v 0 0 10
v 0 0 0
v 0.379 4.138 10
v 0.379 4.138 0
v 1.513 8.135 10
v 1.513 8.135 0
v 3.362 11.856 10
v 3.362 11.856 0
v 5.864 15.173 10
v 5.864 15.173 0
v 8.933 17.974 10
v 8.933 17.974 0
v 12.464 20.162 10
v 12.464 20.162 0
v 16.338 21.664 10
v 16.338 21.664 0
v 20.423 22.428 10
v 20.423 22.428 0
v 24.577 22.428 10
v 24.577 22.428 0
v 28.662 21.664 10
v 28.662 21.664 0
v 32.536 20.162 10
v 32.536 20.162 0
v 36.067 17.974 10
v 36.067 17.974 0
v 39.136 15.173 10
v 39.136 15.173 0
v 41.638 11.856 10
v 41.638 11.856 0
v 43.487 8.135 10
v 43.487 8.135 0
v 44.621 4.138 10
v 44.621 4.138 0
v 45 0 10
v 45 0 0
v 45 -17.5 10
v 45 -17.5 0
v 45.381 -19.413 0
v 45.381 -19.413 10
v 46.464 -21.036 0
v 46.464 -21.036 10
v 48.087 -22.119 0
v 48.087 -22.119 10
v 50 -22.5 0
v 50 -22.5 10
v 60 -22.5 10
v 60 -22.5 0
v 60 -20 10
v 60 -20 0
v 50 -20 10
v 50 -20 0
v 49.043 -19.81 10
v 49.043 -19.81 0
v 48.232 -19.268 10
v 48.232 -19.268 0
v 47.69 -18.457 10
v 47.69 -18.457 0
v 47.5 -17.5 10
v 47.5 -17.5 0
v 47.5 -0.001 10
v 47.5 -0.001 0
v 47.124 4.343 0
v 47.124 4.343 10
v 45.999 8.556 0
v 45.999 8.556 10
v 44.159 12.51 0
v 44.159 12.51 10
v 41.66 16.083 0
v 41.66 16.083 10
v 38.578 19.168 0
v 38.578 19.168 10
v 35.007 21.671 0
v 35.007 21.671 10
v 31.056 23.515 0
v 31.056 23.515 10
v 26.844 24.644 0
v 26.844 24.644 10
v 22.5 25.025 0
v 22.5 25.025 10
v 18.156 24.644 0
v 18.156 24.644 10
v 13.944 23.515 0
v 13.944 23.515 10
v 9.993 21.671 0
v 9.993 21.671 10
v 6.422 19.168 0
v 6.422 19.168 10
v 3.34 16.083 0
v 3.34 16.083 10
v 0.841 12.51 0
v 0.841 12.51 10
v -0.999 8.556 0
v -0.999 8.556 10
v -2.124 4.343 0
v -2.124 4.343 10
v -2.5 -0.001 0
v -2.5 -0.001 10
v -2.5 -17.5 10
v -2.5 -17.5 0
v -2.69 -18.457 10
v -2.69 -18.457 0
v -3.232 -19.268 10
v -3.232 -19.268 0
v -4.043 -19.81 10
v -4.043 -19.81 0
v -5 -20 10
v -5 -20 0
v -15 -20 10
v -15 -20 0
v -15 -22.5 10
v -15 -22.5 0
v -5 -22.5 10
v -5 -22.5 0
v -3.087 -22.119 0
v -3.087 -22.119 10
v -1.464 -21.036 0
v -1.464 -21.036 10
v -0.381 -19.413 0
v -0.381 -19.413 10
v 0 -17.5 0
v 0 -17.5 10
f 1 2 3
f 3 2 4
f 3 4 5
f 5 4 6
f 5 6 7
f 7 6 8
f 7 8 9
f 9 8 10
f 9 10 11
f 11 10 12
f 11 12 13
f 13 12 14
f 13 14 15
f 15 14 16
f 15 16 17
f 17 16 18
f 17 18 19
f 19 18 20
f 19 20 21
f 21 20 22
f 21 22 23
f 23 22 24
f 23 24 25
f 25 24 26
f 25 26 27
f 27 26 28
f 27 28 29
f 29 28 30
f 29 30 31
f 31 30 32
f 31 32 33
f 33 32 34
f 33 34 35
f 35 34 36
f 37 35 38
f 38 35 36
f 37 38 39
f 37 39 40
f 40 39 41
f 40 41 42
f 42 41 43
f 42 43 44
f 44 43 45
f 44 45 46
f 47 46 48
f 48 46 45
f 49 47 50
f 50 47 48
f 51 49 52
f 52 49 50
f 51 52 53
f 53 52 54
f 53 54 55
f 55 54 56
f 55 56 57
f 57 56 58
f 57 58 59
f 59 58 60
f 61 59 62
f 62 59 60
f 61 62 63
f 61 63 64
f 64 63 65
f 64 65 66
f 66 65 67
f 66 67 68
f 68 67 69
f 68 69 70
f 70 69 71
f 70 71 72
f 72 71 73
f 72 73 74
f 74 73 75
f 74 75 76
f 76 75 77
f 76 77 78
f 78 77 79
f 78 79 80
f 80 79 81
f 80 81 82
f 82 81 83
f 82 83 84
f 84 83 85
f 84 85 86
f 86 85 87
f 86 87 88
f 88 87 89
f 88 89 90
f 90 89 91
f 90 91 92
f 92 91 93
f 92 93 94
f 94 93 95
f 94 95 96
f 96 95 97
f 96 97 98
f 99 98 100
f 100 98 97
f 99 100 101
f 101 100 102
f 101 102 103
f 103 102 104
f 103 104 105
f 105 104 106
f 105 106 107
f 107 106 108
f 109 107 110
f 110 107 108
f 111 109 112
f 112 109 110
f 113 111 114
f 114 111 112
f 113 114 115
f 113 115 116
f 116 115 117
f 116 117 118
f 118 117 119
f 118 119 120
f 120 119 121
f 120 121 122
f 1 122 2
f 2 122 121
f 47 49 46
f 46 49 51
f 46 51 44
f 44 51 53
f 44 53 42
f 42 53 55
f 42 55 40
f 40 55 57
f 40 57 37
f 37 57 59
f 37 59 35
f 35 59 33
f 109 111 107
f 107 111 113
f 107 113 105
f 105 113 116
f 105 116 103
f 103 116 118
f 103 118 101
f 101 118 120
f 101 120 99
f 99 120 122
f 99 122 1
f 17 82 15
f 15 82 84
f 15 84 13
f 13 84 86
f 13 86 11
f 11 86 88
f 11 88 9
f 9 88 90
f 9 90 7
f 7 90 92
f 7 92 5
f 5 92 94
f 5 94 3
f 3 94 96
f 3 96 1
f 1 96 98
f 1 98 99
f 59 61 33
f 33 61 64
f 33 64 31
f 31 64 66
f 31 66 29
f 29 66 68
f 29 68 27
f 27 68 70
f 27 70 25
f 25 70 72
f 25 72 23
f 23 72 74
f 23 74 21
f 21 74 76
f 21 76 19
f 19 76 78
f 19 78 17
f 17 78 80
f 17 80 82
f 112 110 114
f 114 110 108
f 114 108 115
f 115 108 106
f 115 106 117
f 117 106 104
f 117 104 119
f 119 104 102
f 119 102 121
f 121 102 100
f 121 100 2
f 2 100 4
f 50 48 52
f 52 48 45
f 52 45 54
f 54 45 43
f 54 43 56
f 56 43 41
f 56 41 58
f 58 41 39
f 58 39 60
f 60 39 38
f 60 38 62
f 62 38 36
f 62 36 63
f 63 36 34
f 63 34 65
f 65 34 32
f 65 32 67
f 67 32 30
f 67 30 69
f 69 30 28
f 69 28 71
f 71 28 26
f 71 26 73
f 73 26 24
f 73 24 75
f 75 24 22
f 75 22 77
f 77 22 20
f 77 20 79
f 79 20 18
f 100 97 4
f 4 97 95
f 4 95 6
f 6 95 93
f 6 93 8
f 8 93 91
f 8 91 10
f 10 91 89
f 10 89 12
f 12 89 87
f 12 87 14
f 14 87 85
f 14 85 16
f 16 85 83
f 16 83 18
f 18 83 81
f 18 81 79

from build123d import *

# Parameters (mm, degrees)
BOSS_EXTRUDE3_DEPTH = 10


with BuildPart() as part:
    # Sketch5 → Boss-Extrude3 (new body)
    with BuildSketch(Plane.XY):
        with BuildLine():
            Line((0, 0), (0, -17.5))
            ThreePointArc((0, -17.5), (-1.464466094, -21.035533906), (-5, -22.5))
            Line((-5, -22.5), (-15, -22.5))
            Line((-15, -22.5), (-15, -20))
            Line((-15, -20), (-5, -20))
            ThreePointArc((-5, -20), (-3.232233047, -19.267766953), (-2.5, -17.5))
            Line((-2.5, -17.5), (-2.5, -0.001325618))
            ThreePointArc((-2.5, -0.001325618), (22.5, 25.024519835), (47.5, -0.001325618))
            Line((47.5, -0.001325618), (47.5, -17.5))
            ThreePointArc((47.5, -17.5), (48.232233047, -19.267766953), (50, -20))
            Line((50, -20), (60, -20))
            Line((60, -20), (60, -22.5))
            Line((60, -22.5), (50, -22.5))
            ThreePointArc((50, -22.5), (46.464466094, -21.035533906), (45, -17.5))
            Line((45, -17.5), (45, 0))
            ThreePointArc((45, 0), (22.5, 22.524519835), (0, 0))
        make_face()
    extrude(amount=BOSS_EXTRUDE3_DEPTH)


solid = part.part
